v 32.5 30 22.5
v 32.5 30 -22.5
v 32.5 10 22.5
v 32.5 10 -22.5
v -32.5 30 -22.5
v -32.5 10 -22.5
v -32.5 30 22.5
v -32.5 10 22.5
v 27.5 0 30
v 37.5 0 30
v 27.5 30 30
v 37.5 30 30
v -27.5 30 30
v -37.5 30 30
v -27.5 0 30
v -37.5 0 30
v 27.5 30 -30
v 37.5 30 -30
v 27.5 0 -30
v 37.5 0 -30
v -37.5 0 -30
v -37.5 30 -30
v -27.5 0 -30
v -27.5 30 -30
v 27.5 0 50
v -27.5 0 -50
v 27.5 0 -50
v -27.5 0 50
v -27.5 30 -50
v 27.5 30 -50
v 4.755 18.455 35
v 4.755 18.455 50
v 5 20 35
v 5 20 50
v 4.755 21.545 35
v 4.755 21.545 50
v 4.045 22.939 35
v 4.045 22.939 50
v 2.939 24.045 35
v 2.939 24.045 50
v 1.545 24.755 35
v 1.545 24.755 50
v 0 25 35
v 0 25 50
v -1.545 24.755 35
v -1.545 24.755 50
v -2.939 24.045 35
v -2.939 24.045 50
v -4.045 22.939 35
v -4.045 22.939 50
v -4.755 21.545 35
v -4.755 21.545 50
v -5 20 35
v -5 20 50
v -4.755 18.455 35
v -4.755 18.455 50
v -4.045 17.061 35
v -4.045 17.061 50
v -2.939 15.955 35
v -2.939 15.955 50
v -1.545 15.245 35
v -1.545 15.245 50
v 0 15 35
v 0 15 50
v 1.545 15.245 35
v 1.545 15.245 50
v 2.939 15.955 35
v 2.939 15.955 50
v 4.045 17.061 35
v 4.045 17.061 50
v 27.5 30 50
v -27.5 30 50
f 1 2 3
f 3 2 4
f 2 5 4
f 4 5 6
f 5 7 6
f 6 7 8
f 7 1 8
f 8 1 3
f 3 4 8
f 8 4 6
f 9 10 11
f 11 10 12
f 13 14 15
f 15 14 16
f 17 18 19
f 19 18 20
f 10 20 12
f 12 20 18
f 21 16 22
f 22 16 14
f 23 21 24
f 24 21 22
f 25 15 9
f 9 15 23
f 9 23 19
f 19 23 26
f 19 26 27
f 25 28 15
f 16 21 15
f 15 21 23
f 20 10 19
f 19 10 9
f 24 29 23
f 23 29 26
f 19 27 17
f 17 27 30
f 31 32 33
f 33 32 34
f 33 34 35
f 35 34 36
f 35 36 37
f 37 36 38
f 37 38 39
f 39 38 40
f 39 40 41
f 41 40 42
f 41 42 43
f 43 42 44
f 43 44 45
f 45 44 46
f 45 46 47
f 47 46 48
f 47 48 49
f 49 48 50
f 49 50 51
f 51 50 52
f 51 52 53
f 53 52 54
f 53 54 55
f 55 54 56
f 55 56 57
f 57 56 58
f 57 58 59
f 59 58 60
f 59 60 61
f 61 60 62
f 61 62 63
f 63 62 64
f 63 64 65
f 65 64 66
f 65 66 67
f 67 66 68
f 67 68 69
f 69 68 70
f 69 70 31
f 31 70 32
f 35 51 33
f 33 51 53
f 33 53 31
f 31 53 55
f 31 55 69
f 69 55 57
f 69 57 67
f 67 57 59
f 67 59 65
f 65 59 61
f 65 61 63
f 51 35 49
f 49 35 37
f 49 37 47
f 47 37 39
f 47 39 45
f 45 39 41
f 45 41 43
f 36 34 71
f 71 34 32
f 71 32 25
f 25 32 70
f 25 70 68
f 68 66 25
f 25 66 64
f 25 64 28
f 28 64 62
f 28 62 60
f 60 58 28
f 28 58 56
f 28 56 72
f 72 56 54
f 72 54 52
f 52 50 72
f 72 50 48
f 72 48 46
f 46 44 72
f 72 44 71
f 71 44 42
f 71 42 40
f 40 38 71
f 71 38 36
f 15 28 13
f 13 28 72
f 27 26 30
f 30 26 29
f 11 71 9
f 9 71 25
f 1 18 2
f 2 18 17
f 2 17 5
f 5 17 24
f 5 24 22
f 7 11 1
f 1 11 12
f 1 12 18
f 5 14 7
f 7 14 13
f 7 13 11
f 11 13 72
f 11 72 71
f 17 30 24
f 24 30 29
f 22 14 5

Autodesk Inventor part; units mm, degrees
ref_plane "YZ Plane" through (0, 0, 0) normal (1, 0, 0) x (0, 1, 0)
ref_plane "XZ Plane" through (0, 0, 0) normal (0, 1, 0) x (-1, 0, 0)
ref_plane "XY Plane" through (0, 0, 0) normal (0, 0, 1) x (1, 0, 0)
sketch "Boceto1" plane through (0, 0, 0) normal (0, 1, 0) x (-1, 0, 0)
  line L0 (27.5, 50) -> (-27.5, 50)
  line L1 (-27.5, 50) -> (-27.5, -50)
  line L2 (-27.5, -50) -> (27.5, -50)
  line L3 (27.5, -50) -> (27.5, 50)
  line L4 (27.5, 50) -> (-27.5, -50) construction
  line L5 (-27.5, 50) -> (27.5, -50) construction
  point P0 (0, 0)
  dimension "d0" = 55
  dimension "d1" = 100
extrude "Extrusión1" add sketch "Boceto1" along normal blind 30
sketch "Boceto3" plane through (-27.5, 0, 50) normal (0, 0, 1) x (1, 0, 0)
  circle A0 centre (27.5, 20) radius 5
  line L0 (0, 30) -> (55, 30) projected
  point P0 (27.5, 0)
  point P1 (27.5, 30)
  dimension "d10" = 10
  dimension "d11" = 10
extrude "Extrusión3" cut sketch "Boceto3" against normal blind 15
sketch "Boceto9" plane through (0, 0, 0) normal (0, -1, 0) x (1, 0, 0)
  line L0 (-37.5, 30) -> (37.5, 30)
  line L1 (37.5, 30) -> (37.5, -30)
  line L2 (37.5, -30) -> (-37.5, -30)
  line L3 (-37.5, -30) -> (-37.5, 30)
  line L4 (-37.5, 30) -> (37.5, -30) construction
  line L5 (37.5, 30) -> (-37.5, -30) construction
  point P0 (0, 0)
  dimension "d52" = 75
  dimension "d53" = 60
extrude "Extrusión7" add sketch "Boceto9" against normal blind 30
sketch "Boceto10" plane through (0, 30, 0) normal (0, 1, 0) x (1, 0, 0)
  line L0 (-32.5, 22.5) -> (32.5, 22.5)
  line L1 (32.5, 22.5) -> (32.5, -22.5)
  line L2 (32.5, -22.5) -> (-32.5, -22.5)
  line L3 (-32.5, -22.5) -> (-32.5, 22.5)
  line L4 (-32.5, 22.5) -> (32.5, -22.5) construction
  line L5 (32.5, 22.5) -> (-32.5, -22.5) construction
  point P0 (0, 0)
  dimension "d56" = 65
  dimension "d57" = 45
extrude "Extrusión8" cut sketch "Boceto10" against normal blind 20
properties part number "camera_support"
